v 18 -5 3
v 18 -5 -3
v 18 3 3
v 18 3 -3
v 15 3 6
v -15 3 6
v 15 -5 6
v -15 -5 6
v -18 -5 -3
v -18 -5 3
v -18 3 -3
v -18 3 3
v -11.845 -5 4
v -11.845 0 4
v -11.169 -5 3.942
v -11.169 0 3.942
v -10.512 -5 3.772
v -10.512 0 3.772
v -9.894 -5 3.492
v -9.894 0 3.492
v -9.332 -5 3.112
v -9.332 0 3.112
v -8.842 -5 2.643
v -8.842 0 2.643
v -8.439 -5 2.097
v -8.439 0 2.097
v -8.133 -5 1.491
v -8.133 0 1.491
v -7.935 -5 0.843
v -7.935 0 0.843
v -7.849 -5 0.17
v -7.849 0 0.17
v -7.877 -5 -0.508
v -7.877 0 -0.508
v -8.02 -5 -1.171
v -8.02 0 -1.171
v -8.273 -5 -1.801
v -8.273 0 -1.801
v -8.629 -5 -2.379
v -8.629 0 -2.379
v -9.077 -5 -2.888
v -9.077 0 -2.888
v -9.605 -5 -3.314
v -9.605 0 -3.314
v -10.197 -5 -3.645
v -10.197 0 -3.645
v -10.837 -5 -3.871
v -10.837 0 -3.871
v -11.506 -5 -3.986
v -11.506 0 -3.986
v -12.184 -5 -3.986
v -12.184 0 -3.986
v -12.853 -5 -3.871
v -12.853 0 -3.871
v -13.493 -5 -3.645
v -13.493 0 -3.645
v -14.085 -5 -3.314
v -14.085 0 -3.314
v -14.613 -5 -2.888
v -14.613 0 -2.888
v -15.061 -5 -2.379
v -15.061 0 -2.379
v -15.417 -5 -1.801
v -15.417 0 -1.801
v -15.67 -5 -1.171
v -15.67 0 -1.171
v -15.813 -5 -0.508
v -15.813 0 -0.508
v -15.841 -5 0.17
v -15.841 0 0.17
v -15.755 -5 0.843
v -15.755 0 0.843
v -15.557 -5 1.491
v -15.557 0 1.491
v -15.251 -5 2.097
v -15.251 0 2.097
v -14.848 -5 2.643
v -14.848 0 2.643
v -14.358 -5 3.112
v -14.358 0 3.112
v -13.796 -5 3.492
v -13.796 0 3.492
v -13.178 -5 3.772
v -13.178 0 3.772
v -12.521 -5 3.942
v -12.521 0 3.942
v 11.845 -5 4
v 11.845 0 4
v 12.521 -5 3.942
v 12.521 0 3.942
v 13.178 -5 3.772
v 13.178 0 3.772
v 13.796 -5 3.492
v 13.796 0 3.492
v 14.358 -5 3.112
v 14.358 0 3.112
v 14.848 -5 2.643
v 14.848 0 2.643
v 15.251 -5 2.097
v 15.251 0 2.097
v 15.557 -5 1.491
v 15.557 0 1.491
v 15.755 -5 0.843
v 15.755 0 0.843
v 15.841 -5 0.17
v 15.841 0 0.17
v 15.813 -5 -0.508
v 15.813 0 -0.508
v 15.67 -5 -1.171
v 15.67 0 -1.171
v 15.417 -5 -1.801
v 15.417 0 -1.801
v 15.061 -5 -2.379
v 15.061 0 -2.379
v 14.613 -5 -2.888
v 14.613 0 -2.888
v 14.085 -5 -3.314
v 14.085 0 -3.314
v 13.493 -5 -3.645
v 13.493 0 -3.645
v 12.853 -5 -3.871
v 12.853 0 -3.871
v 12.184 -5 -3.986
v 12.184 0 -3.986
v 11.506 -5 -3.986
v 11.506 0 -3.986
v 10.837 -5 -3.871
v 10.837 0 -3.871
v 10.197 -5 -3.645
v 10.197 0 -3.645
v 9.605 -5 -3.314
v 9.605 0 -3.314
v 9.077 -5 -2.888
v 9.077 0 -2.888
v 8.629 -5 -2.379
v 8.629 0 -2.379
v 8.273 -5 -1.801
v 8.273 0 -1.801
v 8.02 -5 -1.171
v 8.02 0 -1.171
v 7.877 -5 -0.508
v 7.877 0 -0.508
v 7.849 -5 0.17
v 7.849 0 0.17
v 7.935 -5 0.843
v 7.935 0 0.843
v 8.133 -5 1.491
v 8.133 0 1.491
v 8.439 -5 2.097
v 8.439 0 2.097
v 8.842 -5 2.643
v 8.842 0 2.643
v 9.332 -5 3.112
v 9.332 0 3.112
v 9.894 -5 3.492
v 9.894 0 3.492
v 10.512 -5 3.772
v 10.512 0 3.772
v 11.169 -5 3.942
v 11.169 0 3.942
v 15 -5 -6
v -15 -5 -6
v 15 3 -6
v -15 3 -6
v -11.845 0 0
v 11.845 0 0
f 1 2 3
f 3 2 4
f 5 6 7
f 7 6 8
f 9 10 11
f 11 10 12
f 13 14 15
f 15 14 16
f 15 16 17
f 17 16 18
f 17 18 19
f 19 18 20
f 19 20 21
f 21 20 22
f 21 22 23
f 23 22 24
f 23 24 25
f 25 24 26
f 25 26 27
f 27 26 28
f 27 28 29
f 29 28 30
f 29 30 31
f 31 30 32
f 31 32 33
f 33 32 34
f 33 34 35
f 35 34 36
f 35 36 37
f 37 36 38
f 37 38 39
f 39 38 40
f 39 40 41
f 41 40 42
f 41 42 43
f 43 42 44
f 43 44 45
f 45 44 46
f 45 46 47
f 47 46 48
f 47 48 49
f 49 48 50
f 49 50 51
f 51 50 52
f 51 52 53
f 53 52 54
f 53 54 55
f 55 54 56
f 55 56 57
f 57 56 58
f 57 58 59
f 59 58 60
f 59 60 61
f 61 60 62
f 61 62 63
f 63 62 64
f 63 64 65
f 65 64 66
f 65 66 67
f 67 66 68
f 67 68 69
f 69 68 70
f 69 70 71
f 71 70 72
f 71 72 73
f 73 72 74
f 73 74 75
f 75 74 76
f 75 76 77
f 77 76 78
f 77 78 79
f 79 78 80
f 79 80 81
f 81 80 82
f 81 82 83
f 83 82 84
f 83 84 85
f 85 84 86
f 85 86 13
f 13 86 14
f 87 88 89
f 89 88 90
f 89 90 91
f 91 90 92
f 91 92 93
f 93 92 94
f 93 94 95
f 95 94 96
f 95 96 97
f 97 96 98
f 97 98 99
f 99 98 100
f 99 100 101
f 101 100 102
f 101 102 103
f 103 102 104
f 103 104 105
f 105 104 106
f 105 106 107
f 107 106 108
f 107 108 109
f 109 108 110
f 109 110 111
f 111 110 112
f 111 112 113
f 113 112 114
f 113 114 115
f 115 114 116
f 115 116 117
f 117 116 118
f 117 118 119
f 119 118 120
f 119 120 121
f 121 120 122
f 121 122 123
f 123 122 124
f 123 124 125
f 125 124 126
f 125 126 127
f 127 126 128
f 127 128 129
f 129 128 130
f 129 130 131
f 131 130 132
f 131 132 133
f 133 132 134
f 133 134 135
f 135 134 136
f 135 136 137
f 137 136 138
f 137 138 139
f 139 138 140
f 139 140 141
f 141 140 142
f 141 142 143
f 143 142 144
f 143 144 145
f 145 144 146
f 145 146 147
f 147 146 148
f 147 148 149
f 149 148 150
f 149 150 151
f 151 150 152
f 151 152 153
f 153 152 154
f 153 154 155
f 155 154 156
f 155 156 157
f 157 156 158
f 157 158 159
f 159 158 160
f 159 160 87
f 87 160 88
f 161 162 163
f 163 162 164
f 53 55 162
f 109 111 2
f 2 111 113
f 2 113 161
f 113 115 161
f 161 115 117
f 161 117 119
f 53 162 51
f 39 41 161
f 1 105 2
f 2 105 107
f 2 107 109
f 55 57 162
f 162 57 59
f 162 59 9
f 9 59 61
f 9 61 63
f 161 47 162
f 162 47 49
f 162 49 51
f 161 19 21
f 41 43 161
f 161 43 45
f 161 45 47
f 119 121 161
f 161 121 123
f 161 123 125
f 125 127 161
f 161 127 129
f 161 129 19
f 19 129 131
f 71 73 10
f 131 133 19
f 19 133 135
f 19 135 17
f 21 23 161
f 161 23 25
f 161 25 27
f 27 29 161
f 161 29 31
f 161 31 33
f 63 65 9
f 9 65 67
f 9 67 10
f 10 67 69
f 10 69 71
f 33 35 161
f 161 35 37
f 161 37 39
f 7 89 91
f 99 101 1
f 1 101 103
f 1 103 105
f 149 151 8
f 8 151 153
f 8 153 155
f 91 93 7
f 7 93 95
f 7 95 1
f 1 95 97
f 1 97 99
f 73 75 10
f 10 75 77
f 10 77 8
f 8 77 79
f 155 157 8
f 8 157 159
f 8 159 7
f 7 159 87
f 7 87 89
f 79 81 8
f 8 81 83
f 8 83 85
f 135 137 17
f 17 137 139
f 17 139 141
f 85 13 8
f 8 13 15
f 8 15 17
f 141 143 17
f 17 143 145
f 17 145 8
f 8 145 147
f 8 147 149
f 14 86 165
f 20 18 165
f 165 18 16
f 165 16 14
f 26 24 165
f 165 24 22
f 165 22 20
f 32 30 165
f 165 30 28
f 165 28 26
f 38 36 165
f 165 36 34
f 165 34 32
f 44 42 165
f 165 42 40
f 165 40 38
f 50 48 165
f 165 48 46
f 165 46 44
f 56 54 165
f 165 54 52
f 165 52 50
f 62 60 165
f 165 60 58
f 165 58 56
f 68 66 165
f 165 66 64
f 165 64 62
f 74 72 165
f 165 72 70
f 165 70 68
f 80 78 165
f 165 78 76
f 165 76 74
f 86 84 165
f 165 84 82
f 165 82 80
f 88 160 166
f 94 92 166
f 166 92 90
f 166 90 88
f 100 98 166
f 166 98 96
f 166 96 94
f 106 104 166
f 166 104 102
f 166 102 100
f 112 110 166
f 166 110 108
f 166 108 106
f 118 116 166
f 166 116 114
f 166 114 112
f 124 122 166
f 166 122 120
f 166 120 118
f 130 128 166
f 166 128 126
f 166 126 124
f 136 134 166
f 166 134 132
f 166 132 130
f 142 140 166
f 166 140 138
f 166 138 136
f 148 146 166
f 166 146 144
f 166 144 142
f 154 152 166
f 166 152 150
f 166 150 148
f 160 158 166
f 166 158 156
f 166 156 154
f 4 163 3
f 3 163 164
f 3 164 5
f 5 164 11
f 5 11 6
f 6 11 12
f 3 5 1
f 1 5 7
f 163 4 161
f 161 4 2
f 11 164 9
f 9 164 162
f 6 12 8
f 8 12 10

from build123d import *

# Parameters (mm, degrees)
SKETCH1_W           = 36
SKETCH1_H           = 12
SKETCH1_R           = 4
BOSS_EXTRUDE1_DEPTH = 5
SKETCH2_W           = 36
SKETCH2_H           = 12
BOSS_EXTRUDE2_DEPTH = 3
CHAMFER3_SIZE       = 3


with BuildPart() as part:
    # Sketch1 → Boss-Extrude1 (new body)
    with BuildSketch(Plane(origin=(0, 0, 0), x_dir=(1, 0, 0), z_dir=(0, 1, 0))):
        Rectangle(SKETCH1_W, SKETCH1_H)
        with Locations(Location((11.845, 0, 0), (0, 0, 270))):
            Circle(SKETCH1_R, mode=Mode.SUBTRACT)
        with Locations(Location((-11.845, 0, 0), (0, 0, 270))):
            Circle(SKETCH1_R, mode=Mode.SUBTRACT)
    extrude(amount=-BOSS_EXTRUDE1_DEPTH)

    # Sketch2 → Boss-Extrude2 (add)
    with BuildSketch(Plane(origin=(0, 0, 0), x_dir=(1, 0, 0), z_dir=(0, 1, 0))):
        Rectangle(SKETCH2_W, SKETCH2_H)
    extrude(amount=BOSS_EXTRUDE2_DEPTH)

    # Chamfer3
    chamfer3_edges = [part.edges().sort_by_distance(p)[0] for p in [
        (18, -1, 6),
        (-18, -1, 6),
        (-18, -1, -6),
        (18, -1, -6),
    ]]
    chamfer(chamfer3_edges, length=CHAMFER3_SIZE)


solid = part.part
